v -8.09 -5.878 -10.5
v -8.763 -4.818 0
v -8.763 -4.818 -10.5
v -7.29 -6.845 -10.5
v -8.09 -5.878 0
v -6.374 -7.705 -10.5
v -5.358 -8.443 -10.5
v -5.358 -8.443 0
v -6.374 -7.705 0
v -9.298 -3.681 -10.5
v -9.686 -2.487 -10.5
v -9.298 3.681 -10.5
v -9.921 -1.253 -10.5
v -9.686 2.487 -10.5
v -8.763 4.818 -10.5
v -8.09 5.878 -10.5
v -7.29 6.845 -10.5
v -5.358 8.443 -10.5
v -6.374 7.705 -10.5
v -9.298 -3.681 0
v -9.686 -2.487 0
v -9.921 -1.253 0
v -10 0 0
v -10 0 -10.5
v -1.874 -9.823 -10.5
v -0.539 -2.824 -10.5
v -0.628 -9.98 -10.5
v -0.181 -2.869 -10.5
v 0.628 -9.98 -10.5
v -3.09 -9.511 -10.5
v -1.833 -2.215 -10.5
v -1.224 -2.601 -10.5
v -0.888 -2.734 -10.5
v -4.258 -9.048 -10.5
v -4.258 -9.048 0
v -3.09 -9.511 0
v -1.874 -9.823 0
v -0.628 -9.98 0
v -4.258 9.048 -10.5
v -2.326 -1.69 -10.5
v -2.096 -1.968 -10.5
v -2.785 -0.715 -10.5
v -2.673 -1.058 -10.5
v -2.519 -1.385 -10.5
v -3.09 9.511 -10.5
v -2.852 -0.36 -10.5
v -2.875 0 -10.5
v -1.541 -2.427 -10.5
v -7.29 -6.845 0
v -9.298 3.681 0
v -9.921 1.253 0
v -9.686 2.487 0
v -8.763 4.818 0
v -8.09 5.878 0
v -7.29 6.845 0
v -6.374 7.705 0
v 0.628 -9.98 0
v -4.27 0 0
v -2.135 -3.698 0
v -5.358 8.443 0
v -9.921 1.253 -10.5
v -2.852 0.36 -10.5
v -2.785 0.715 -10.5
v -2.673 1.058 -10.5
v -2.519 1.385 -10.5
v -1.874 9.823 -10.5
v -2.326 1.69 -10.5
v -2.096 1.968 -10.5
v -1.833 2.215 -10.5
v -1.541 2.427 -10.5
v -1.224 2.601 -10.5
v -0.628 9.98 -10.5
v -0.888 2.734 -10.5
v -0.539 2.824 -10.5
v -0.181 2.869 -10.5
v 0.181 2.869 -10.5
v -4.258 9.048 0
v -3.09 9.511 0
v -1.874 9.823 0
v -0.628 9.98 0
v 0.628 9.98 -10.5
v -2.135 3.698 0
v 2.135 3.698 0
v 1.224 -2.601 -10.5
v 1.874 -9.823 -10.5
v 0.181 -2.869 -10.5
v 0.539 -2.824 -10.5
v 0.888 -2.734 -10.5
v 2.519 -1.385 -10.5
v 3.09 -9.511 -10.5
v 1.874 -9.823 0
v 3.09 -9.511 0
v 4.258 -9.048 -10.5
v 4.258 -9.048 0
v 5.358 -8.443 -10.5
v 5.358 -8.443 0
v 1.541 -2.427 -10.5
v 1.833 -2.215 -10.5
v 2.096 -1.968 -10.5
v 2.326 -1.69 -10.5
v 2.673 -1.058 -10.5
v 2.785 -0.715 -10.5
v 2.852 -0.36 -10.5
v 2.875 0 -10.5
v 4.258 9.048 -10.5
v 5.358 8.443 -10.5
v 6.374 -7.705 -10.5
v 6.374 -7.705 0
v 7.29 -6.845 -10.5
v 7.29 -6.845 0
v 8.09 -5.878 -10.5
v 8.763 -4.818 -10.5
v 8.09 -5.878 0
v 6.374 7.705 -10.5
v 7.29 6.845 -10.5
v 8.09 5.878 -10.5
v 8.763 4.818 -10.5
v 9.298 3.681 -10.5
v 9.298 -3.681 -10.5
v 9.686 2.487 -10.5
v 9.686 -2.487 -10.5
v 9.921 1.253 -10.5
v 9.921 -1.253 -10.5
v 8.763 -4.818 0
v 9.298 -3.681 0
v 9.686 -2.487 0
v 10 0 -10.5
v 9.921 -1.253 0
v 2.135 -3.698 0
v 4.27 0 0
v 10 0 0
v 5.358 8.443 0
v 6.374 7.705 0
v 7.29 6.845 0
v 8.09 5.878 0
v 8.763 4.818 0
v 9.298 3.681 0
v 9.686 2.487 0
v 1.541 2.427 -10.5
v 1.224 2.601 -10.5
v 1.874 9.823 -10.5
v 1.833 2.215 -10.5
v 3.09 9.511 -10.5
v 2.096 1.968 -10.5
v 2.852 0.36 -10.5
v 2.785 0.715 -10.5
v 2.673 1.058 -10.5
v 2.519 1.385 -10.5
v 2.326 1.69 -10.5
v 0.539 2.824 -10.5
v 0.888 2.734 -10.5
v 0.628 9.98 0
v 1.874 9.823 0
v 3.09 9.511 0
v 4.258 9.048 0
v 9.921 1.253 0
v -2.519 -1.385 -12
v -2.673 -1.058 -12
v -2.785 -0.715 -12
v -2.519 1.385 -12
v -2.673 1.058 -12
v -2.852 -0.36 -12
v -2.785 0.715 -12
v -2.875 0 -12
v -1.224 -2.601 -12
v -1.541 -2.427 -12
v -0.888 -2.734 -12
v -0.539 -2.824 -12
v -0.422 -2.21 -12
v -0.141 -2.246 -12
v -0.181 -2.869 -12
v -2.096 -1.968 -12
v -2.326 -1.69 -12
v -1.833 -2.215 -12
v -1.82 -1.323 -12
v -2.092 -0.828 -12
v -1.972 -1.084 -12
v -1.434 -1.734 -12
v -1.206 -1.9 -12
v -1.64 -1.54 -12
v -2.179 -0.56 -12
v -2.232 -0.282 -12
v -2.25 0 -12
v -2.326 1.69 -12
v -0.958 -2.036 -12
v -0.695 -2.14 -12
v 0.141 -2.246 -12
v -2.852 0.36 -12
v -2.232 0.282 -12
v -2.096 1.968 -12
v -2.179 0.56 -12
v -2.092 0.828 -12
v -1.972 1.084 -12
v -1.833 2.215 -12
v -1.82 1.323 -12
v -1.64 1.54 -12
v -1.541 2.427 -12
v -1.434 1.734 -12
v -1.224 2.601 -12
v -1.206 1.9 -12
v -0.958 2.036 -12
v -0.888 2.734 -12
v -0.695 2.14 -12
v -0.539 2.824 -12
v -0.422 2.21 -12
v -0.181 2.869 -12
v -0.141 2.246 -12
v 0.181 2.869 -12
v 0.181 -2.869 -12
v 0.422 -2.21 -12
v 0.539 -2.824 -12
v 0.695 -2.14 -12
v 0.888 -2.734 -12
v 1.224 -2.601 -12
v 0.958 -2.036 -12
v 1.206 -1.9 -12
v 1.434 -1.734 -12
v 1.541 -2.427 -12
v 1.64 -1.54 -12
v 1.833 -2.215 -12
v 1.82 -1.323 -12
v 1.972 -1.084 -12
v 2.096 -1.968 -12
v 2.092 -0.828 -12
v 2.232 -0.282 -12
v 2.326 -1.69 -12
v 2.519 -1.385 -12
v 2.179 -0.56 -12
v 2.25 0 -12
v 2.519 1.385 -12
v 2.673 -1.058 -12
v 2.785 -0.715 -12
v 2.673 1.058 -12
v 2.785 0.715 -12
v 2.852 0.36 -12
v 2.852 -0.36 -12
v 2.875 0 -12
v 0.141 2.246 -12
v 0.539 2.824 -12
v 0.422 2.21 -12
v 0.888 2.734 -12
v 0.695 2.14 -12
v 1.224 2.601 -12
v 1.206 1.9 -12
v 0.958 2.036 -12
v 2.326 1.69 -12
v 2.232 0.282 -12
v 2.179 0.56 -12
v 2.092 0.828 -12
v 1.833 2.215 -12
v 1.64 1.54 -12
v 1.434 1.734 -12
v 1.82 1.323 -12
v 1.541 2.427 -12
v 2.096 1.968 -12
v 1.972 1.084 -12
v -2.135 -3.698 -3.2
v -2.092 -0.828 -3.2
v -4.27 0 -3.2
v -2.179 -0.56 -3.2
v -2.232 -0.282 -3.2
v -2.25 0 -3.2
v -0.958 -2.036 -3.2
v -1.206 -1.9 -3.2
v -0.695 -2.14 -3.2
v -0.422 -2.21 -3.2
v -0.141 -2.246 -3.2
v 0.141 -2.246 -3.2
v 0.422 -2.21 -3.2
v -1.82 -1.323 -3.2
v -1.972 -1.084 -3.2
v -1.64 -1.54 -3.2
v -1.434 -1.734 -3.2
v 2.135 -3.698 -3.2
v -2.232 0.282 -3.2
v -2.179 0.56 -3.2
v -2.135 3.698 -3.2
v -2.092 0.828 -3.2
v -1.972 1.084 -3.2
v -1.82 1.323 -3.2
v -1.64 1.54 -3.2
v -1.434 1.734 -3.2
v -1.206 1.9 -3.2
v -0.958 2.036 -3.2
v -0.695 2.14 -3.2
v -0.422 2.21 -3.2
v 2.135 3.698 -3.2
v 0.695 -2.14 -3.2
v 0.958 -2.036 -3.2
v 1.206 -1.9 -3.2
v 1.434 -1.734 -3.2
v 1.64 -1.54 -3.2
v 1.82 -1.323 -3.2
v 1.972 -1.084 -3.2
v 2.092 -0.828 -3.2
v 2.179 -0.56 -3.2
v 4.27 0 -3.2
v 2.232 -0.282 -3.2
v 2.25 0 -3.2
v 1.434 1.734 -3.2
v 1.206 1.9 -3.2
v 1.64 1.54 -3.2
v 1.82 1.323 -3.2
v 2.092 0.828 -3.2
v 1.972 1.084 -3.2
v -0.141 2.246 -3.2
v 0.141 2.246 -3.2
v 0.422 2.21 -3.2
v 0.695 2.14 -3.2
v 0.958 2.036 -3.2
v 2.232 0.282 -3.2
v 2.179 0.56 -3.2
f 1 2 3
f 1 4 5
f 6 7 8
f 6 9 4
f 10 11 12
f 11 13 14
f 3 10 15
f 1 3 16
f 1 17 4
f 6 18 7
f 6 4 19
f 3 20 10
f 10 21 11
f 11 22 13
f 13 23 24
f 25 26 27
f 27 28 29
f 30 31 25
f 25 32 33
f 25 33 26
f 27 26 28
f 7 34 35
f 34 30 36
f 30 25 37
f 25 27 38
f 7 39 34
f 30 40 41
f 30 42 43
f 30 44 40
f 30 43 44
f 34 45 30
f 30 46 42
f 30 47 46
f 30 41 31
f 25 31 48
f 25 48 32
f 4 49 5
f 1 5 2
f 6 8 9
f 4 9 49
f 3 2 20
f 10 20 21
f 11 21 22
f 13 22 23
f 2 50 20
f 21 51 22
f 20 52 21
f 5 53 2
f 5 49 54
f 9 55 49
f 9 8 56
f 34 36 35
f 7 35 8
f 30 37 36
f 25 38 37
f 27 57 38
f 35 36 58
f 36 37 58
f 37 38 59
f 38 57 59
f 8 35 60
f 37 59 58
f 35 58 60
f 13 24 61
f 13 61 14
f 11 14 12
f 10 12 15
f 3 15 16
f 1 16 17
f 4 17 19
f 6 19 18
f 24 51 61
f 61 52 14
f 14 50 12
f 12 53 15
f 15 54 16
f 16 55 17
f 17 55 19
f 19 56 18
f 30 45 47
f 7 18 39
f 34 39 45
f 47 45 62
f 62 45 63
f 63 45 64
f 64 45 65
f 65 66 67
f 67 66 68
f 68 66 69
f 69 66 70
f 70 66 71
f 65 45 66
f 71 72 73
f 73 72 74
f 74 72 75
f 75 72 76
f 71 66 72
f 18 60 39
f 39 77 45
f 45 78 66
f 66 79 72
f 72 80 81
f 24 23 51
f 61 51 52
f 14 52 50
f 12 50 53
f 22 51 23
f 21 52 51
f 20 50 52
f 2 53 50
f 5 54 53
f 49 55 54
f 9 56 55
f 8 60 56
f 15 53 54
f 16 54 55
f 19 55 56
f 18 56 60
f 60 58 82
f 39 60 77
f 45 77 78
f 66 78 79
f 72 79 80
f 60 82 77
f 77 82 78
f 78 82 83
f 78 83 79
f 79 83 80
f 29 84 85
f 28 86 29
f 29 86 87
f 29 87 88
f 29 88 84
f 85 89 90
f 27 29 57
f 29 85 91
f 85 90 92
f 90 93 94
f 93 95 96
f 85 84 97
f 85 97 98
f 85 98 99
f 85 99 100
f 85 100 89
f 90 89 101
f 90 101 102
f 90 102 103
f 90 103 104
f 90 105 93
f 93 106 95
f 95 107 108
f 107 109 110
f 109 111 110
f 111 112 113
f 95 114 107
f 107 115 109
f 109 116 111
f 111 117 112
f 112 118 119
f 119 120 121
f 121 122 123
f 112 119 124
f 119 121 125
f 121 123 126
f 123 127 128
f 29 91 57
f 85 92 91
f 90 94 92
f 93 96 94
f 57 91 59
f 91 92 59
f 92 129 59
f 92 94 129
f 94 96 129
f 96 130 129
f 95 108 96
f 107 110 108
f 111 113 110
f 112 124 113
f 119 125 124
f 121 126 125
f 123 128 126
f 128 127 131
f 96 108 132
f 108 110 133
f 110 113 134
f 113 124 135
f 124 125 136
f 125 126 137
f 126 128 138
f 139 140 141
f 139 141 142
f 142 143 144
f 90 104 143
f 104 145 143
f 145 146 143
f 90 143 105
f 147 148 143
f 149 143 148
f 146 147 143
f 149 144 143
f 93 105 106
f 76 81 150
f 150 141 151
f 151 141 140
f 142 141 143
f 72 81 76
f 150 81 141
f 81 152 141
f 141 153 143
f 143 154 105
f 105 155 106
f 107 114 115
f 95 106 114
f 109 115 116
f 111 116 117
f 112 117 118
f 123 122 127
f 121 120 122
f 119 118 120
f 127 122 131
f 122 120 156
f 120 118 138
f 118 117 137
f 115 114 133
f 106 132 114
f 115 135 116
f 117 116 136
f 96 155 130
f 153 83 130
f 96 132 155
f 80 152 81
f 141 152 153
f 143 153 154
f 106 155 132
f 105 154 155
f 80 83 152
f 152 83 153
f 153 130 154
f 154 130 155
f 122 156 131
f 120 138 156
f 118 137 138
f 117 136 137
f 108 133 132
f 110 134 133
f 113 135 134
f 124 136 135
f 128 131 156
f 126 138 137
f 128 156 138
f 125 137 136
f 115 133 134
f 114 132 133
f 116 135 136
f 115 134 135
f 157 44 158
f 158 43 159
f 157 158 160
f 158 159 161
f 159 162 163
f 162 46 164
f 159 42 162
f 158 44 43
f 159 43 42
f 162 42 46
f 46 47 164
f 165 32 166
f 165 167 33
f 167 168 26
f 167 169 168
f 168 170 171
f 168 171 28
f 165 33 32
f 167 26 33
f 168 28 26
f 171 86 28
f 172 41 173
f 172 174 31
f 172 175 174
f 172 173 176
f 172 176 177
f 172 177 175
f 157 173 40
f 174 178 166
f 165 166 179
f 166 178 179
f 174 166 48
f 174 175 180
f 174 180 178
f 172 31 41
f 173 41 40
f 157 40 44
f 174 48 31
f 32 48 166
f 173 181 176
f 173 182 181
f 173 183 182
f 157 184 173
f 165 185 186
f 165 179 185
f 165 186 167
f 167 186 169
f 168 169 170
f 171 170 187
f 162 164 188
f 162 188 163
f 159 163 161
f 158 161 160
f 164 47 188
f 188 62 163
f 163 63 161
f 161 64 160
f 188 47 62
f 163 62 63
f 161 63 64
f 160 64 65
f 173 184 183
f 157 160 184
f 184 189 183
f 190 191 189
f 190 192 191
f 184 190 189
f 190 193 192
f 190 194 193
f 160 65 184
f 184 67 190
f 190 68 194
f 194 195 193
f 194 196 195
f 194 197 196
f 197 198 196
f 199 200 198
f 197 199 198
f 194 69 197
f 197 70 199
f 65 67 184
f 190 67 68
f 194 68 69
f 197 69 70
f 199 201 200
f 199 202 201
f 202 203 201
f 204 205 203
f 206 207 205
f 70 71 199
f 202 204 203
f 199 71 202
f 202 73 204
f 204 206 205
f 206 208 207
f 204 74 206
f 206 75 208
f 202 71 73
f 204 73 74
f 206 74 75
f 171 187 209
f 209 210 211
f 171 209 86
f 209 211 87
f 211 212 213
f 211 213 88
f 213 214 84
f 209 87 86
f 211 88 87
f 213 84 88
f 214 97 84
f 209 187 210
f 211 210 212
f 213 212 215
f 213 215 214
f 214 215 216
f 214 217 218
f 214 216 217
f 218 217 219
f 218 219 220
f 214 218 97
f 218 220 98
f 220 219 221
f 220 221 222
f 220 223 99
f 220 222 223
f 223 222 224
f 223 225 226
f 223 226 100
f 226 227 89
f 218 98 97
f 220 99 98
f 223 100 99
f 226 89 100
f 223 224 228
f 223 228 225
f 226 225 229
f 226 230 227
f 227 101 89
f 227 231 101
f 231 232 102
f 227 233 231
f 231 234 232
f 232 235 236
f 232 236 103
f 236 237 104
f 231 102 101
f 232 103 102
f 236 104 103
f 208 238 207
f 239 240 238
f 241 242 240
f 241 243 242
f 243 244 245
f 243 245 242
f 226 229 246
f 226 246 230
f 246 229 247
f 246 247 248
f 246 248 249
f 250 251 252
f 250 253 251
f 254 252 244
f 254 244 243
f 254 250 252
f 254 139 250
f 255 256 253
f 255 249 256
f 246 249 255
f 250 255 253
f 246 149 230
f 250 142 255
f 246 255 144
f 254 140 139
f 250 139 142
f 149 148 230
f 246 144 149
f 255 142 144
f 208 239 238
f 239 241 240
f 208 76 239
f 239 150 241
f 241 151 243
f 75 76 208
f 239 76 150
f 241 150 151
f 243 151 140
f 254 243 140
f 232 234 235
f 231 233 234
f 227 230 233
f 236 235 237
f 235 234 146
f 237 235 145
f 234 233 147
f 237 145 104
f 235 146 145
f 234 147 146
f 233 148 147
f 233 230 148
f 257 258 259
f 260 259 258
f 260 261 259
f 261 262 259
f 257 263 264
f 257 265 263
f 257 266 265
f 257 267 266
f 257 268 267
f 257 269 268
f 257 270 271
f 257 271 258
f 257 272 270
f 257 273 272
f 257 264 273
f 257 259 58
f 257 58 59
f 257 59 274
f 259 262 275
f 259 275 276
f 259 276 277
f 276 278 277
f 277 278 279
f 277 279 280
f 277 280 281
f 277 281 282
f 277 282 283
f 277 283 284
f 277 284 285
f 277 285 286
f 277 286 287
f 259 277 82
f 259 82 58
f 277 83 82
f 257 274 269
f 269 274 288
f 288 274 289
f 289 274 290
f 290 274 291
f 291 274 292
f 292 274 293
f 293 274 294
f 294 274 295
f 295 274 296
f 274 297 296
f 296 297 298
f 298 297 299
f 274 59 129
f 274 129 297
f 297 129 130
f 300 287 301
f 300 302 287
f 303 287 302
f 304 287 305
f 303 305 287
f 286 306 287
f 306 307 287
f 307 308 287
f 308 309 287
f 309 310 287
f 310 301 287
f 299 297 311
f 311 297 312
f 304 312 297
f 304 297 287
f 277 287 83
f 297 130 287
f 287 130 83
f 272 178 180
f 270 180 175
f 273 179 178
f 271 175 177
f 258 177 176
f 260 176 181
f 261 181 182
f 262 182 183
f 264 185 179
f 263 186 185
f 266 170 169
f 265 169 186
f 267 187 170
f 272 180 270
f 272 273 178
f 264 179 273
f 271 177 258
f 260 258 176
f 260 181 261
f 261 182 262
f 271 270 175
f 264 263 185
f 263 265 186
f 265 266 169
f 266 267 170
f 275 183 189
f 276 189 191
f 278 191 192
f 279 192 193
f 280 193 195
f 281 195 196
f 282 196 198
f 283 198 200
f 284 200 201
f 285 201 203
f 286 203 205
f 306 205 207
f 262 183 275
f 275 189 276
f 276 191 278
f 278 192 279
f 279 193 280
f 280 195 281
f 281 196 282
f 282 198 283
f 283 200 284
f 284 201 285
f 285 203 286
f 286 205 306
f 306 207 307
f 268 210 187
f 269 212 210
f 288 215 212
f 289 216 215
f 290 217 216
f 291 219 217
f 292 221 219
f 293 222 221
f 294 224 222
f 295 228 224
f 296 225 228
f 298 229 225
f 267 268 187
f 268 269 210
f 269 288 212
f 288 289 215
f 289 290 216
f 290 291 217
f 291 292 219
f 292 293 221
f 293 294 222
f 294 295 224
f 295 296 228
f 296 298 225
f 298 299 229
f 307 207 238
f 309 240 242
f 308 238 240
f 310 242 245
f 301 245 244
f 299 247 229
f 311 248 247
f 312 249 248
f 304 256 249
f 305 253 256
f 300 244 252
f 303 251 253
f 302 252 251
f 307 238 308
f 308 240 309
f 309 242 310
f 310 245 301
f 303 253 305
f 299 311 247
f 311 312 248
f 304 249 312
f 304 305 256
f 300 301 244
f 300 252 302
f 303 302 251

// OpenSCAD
$fn = 50;


difference() {
	union() {
		translate(v = [0, 0, -10.5000000000]) {
			cylinder(h = 10.5000000000, r = 10.0000000000);
		}
		#translate(v = [0, 0, -12.0000000000]) {
			cylinder(h = 12, r = 2.8750000000);
		}
	}
	union() {
		translate(v = [0, 0, 0]) {
			rotate(a = [0, 0, 0]) {
				difference() {
					union() {
						translate(v = [0, 0, -3.2000000000]) {
							linear_extrude(height = 3.2000000000) {
								polygon(points = [[4.2698000000, 0.0000000000], [2.1349000000, 3.6977552691], [-2.1349000000, 3.6977552691], [-4.2698000000, 0.0000000000], [-2.1349000000, -3.6977552691], [2.1349000000, -3.6977552691]]);
							}
						}
					}
					union();
				}
			}
		}
		#translate(v = [0, 0, -100.0000000000]) {
			cylinder(h = 200, r = 2.2500000000);
		}
	}
}
